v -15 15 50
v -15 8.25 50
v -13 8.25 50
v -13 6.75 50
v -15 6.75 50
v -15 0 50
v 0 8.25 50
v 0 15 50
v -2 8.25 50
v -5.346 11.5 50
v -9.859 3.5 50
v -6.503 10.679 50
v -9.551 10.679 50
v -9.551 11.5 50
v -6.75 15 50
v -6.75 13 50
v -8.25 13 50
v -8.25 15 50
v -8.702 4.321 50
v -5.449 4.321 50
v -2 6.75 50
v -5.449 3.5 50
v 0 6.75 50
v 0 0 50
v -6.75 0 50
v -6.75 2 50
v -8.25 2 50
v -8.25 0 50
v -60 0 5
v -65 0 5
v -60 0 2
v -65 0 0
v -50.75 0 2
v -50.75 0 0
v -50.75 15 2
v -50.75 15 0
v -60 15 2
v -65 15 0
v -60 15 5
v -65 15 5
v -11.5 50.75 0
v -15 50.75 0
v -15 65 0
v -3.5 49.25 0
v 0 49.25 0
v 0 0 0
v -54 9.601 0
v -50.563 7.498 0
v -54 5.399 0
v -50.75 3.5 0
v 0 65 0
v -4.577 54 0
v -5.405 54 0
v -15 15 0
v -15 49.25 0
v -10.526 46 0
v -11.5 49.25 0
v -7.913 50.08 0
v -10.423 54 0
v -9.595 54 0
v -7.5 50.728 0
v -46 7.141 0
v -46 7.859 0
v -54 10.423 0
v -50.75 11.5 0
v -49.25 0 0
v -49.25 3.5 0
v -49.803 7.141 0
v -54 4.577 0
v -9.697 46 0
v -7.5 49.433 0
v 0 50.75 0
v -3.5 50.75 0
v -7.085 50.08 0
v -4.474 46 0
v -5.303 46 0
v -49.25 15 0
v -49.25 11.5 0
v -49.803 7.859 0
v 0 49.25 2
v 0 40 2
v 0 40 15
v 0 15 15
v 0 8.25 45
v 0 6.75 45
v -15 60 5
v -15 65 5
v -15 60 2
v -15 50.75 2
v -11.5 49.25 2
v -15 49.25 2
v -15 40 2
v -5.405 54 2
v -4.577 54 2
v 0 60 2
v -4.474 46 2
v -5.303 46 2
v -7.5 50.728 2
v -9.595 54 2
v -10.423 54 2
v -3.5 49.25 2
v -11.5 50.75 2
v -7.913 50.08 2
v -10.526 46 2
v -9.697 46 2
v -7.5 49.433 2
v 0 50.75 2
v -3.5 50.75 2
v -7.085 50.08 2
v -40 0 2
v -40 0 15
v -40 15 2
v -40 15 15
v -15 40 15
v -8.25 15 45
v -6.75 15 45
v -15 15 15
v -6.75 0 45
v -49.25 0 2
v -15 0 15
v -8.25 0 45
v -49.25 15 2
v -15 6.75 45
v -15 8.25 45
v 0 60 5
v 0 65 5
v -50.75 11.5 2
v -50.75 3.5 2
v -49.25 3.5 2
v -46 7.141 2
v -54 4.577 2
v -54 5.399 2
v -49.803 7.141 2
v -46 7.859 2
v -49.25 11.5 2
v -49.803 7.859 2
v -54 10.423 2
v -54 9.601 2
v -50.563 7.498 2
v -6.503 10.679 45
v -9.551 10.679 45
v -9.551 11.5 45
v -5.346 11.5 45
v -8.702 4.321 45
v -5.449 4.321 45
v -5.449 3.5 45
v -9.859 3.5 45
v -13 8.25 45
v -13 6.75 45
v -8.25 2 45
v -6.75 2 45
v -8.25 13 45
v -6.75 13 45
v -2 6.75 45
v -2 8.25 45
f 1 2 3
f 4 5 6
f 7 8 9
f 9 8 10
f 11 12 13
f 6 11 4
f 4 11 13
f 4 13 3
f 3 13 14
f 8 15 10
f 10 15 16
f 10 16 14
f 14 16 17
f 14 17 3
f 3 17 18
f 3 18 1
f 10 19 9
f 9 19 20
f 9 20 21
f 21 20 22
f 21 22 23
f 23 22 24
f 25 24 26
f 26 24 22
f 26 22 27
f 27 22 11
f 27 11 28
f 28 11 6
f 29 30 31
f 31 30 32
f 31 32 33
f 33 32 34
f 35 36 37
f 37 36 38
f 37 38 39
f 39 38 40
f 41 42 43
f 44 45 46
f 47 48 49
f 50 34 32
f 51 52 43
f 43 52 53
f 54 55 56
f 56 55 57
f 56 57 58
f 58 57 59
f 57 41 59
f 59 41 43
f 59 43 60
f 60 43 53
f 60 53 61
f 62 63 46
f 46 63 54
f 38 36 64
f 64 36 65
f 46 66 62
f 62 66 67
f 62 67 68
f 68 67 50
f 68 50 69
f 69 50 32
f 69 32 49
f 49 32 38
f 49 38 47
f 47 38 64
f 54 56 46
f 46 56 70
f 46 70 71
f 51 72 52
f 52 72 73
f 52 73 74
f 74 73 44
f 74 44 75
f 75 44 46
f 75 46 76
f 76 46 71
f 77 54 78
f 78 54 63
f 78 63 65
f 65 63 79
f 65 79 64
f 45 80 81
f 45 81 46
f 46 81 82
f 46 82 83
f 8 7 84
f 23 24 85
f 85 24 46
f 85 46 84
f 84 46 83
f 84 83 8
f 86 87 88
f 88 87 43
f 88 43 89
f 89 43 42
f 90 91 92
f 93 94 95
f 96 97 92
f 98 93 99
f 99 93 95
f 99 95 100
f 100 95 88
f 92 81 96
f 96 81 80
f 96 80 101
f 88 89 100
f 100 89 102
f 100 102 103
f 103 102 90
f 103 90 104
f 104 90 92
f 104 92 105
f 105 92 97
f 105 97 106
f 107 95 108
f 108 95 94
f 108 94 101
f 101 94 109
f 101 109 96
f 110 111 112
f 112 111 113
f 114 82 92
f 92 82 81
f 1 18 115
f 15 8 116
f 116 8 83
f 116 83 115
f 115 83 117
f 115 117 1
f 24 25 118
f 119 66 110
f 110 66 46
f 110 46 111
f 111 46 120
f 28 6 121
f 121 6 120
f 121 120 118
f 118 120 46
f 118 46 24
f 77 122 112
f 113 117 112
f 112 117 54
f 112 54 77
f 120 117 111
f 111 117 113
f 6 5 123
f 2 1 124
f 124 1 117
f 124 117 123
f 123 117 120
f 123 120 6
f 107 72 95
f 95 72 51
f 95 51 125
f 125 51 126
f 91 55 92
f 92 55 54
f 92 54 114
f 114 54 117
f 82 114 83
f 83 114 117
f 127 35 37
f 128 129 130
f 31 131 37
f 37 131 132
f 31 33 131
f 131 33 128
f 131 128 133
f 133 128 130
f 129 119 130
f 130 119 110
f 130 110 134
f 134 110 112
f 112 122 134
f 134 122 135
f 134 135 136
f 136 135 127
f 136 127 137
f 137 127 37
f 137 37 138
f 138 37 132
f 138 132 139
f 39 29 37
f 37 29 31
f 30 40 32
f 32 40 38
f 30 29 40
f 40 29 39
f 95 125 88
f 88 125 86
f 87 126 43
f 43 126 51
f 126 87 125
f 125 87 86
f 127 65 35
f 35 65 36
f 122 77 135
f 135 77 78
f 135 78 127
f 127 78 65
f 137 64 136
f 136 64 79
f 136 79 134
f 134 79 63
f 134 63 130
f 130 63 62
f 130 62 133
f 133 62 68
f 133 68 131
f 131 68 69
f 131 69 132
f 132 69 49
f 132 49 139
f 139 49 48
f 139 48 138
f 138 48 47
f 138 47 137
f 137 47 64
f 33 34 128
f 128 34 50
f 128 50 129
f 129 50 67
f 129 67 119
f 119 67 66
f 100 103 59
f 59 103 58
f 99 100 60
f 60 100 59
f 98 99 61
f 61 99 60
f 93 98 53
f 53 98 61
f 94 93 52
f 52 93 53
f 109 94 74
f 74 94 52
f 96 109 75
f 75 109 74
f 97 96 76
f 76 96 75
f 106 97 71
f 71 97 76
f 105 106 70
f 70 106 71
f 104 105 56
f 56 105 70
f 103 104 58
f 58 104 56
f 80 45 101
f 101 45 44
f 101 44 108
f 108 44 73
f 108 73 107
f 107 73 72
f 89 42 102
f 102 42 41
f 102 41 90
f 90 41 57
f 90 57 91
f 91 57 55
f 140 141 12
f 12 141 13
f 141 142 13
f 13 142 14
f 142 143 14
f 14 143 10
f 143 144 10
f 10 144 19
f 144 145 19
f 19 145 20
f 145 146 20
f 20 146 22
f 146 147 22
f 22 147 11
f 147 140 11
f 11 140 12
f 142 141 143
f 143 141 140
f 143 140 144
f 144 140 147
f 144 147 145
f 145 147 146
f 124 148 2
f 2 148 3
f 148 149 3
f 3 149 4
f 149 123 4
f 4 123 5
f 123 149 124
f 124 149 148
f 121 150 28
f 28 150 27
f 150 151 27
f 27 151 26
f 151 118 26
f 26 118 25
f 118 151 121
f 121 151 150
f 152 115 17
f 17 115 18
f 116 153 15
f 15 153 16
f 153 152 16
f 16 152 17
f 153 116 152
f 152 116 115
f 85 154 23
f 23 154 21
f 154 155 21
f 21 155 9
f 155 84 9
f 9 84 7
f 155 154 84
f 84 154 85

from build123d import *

# Parameters (mm, degrees)
CROQUIS2_W                = 25
CROQUIS2_H                = 15
SALIENTE_EXTRUIR1_DEPTH   = 15
CROQUIS2_W_2              = 15
CROQUIS2_H_2              = 25
SALIENTE_EXTRUIR1_2_DEPTH = 15
CROQUIS2_3_W              = 15
CROQUIS2_3_H              = 15
SALIENTE_EXTRUIR2_DEPTH   = 50
CROQUIS3_W                = 15
CROQUIS3_H                = 20
CROQUIS3_W_2              = 20
CROQUIS3_H_2              = 15
SALIENTE_EXTRUIR3_DEPTH   = 2
CROQUIS3_3_W              = 15
CROQUIS3_3_H              = 5
CROQUIS3_3_W_2            = 5
CROQUIS3_3_H_2            = 15
SALIENTE_EXTRUIR4_DEPTH   = 5
CROQUIS4_W                = 3.5
CROQUIS4_H                = 1.5
CROQUIS4_W_2              = 1.5
CROQUIS4_H_2              = 3.5
CORTAR_EXTRUIR1_DEPTH     = 15
CROQUIS5_W                = 1.5
CROQUIS5_H                = 2
CROQUIS5_W_2              = 2
CROQUIS5_H_2              = 1.5
CORTAR_EXTRUIR2_DEPTH     = 5


with BuildPart() as part:
    # Croquis2 → Saliente-Extruir1 (new body)
    with BuildSketch(Plane.XY):
        with Locations((-27.5, 7.5)):
            Rectangle(CROQUIS2_W, CROQUIS2_H)
    extrude(amount=SALIENTE_EXTRUIR1_DEPTH)



with BuildPart() as body_2:
    # Croquis2 → Saliente-Extruir1 2 (new body)
    with BuildSketch(Plane.XY):
        with Locations((-7.5, 27.5)):
            Rectangle(CROQUIS2_W_2, CROQUIS2_H_2)
    extrude(amount=SALIENTE_EXTRUIR1_2_DEPTH)


with BuildPart() as part_1:
    add(part.part)

    add(body_2.part)  # Saliente-Extruir2 merges body 2
    # Croquis2<3> → Saliente-Extruir2 (add)
    with BuildSketch(Plane.XY):
        with Locations((-7.5, 7.5)):
            Rectangle(CROQUIS2_3_W, CROQUIS2_3_H)
    extrude(amount=SALIENTE_EXTRUIR2_DEPTH)

    # Croquis3 → Saliente-Extruir3 (add)
    with BuildSketch(Plane.XY):
        with Locations((-7.5, 50)):
            Rectangle(CROQUIS3_W, CROQUIS3_H)
        with Locations((-50, 7.5)):
            Rectangle(CROQUIS3_W_2, CROQUIS3_H_2)
    extrude(amount=SALIENTE_EXTRUIR3_DEPTH)

    # Croquis3<3> → Saliente-Extruir4 (add)
    with BuildSketch(Plane.XY):
        with Locations((-7.5, 62.5)):
            Rectangle(CROQUIS3_3_W, CROQUIS3_3_H)
        with Locations((-62.5, 7.5)):
            Rectangle(CROQUIS3_3_W_2, CROQUIS3_3_H_2)
    extrude(amount=SALIENTE_EXTRUIR4_DEPTH)

    # Croquis4 → Cortar-Extruir1 (cut)
    with BuildSketch(Plane.XY.offset(2)):
        with Locations((-13.25, 50)):
            Rectangle(CROQUIS4_W, CROQUIS4_H)
        with Locations((-1.75, 50)):
            Rectangle(CROQUIS4_W, CROQUIS4_H)
        with Locations((-50, 13.25)):
            Rectangle(CROQUIS4_W_2, CROQUIS4_H_2)
        with Locations((-50, 1.75)):
            Rectangle(CROQUIS4_W_2, CROQUIS4_H_2)
        Polygon((-10.423076923, 54), (-9.594551282, 54), (-7.5, 50.727564103), (-5.405448718, 54), (-4.576923077, 54), (-7.084935897, 50.080128205), (-4.474358974, 46), (-5.302884615, 46), (-7.5, 49.432692308), (-9.697115385, 46), (-10.525641026, 46), (-7.913461538, 50.080128205), align=None)
        Polygon((-54, 10.423076923), (-54, 9.600961538), (-50.5625, 7.498397436), (-54, 5.399038462), (-54, 4.576923077), (-49.802884615, 7.141025641), (-46, 7.141025641), (-46, 7.858974359), (-49.802884615, 7.858974359), align=None)
    extrude(amount=-CORTAR_EXTRUIR1_DEPTH, mode=Mode.SUBTRACT)

    # Croquis5 → Cortar-Extruir2 (cut)
    with BuildSketch(Plane.XY.offset(50)):
        with Locations((-7.5, 14)):
            Rectangle(CROQUIS5_W, CROQUIS5_H)
        with Locations((-7.5, 1)):
            Rectangle(CROQUIS5_W, CROQUIS5_H)
        with Locations((-1, 7.5)):
            Rectangle(CROQUIS5_W_2, CROQUIS5_H_2)
        with Locations((-14, 7.5)):
            Rectangle(CROQUIS5_W_2, CROQUIS5_H_2)
        Polygon((-9.551282051, 10.679487179), (-9.551282051, 11.5), (-5.346153846, 11.5), (-8.701923077, 4.320512821), (-5.448717949, 4.320512821), (-5.448717949, 3.5), (-9.858974359, 3.5), (-6.503205128, 10.679487179), align=None)
    extrude(amount=-CORTAR_EXTRUIR2_DEPTH, mode=Mode.SUBTRACT)


solid = part_1.part
